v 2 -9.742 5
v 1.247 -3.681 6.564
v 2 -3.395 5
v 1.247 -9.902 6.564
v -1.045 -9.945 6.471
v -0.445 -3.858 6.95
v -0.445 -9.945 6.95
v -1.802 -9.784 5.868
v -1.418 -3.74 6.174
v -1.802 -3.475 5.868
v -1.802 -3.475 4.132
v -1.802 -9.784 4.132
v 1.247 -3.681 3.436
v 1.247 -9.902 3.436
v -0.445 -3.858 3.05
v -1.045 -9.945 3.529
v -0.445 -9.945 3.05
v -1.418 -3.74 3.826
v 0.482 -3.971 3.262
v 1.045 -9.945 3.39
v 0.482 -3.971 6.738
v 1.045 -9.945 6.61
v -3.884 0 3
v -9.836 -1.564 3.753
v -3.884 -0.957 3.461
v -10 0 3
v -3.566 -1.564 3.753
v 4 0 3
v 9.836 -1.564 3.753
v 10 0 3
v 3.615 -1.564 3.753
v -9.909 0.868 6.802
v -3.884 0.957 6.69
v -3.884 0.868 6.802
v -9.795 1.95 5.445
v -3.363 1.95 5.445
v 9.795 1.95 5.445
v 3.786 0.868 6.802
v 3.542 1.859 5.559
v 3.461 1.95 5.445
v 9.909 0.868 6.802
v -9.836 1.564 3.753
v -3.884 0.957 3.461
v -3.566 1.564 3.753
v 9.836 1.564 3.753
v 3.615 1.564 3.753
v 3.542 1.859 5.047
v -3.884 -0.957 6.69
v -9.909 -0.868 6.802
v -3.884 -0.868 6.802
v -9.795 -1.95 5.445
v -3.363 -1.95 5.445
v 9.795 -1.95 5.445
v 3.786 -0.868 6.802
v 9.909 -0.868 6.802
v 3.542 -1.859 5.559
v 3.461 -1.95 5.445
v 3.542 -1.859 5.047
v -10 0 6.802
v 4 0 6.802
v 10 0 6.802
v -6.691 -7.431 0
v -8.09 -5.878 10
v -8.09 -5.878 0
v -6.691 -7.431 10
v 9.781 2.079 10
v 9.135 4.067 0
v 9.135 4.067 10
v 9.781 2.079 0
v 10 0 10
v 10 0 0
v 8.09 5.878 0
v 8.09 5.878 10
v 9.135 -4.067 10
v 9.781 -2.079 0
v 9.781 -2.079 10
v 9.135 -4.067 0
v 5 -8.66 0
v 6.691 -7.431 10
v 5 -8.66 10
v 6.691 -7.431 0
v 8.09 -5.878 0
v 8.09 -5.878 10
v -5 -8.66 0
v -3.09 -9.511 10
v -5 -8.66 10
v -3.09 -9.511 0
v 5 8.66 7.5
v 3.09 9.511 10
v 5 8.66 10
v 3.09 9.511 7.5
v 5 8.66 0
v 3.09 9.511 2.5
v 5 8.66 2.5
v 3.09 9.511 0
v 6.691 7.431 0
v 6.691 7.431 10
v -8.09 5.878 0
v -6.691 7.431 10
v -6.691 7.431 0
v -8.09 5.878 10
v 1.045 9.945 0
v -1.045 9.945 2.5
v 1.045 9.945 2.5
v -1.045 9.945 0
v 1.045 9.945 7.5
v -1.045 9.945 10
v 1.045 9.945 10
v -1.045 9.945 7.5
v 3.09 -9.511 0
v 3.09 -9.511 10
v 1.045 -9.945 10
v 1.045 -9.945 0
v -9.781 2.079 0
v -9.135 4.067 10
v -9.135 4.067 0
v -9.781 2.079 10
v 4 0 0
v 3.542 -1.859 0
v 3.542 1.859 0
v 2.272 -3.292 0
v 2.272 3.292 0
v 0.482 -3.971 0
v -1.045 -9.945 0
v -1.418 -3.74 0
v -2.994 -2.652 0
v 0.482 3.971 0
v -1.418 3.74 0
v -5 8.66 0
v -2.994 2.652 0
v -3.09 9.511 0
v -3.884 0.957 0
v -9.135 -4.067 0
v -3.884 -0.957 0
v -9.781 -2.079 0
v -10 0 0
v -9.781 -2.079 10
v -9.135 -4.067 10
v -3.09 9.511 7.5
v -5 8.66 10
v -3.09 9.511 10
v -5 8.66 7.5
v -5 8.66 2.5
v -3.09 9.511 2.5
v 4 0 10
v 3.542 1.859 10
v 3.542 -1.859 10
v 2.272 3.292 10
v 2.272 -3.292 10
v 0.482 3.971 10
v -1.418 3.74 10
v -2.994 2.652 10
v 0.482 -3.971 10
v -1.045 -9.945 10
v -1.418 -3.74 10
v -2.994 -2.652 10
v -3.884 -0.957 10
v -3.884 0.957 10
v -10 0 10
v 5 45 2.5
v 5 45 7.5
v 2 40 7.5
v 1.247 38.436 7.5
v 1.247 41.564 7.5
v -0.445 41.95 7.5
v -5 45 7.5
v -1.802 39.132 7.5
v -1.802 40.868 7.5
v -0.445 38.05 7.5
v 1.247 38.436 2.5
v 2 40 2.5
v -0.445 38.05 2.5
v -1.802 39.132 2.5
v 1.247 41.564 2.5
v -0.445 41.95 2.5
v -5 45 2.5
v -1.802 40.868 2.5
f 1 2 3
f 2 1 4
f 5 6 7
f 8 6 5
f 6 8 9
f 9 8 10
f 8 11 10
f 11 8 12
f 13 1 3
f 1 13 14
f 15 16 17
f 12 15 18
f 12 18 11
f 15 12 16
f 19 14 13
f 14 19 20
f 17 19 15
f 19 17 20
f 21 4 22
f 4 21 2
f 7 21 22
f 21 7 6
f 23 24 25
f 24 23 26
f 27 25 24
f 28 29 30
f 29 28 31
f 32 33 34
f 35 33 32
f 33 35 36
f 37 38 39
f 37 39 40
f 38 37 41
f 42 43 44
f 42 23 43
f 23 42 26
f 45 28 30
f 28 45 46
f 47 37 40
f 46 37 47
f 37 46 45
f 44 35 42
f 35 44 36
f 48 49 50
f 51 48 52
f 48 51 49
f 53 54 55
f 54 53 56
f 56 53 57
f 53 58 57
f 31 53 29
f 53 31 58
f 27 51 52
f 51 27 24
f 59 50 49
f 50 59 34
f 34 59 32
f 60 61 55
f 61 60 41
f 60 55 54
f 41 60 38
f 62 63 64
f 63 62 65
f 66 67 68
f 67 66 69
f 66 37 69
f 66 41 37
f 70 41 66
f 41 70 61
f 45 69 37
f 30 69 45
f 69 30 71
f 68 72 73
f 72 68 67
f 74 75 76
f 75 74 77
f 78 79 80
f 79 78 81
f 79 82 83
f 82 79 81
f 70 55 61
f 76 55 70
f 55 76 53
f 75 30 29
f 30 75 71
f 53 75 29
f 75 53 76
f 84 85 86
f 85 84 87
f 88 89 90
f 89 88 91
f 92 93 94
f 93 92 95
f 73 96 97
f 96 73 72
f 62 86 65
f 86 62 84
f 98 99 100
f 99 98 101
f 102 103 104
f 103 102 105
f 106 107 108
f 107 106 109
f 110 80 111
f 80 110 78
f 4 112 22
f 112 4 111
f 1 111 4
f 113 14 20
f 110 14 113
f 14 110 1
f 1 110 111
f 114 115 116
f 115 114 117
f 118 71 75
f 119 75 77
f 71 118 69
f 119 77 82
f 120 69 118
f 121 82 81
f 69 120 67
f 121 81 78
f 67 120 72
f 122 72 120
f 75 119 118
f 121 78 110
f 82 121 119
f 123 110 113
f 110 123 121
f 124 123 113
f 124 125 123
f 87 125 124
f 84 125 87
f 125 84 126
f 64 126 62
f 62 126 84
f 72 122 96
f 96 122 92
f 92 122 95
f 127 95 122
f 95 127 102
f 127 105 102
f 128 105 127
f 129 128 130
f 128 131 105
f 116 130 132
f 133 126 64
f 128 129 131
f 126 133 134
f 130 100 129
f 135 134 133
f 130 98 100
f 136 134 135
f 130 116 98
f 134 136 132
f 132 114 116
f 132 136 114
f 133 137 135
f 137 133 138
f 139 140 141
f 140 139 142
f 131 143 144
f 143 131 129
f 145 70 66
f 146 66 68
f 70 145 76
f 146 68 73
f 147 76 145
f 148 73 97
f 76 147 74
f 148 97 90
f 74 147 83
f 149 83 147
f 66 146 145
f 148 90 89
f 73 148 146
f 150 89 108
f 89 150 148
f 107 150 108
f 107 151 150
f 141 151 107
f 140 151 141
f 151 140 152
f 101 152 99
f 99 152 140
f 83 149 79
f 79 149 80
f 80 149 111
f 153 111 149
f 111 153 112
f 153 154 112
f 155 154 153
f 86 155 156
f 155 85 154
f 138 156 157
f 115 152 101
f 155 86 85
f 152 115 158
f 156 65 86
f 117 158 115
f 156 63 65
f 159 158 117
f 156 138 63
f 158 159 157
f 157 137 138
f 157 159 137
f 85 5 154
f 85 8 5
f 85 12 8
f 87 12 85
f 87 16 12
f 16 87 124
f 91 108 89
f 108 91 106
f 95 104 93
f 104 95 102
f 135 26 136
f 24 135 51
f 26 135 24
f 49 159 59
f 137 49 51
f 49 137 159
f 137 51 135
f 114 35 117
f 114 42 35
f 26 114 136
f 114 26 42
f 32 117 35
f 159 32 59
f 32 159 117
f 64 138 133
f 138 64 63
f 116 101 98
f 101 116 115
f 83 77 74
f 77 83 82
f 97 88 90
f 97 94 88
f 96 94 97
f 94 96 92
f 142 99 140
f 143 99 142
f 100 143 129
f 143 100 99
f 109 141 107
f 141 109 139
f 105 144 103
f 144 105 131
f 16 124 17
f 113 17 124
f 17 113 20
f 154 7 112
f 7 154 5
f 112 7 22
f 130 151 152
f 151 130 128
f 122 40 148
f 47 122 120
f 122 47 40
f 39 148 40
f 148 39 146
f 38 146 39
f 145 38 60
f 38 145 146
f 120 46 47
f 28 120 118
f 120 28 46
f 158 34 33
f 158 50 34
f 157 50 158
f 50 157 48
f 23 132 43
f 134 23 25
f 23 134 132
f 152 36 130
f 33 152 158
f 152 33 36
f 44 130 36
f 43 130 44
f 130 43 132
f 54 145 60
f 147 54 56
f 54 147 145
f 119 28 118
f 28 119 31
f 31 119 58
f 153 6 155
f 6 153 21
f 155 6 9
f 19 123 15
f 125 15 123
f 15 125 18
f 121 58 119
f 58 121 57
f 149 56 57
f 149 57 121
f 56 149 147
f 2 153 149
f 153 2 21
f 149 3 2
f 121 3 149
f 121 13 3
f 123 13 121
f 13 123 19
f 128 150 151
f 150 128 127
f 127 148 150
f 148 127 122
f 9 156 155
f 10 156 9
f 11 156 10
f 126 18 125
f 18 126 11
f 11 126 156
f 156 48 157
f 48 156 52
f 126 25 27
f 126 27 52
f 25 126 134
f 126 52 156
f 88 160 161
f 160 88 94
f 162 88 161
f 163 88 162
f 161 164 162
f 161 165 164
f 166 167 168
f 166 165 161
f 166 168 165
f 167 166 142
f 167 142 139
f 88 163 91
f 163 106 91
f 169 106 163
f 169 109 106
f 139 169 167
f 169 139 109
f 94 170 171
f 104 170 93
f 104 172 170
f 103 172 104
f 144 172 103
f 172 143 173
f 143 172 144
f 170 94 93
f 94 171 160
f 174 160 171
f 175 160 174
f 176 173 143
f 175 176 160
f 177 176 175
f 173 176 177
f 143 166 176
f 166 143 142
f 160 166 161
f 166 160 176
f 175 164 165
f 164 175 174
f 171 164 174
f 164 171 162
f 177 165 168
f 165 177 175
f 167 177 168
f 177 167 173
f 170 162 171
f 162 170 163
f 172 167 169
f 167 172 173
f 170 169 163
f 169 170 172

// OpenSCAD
// damper control handle/hardware for HVAC
// https://www.mcmaster.com/damper-control-handles


difference(){
//ring around damper bolt
difference(){
cylinder(10,10,10);
translate ([0,0,-5]) cylinder(20,4,4);
}

//holes for fixing bolts
union(){ 
translate([0,0,5])
  rotate([90,0,0])
    cylinder(10,2,2);
 
translate([-10,0,5])
  rotate([0,90,0])
    cylinder(20,2,2);
}
}

//handle with hole in it
difference(){
translate([-5,5,2.5]) cube([10,40,5]);
translate([0,40,0]) cylinder(10,2,2);
}
